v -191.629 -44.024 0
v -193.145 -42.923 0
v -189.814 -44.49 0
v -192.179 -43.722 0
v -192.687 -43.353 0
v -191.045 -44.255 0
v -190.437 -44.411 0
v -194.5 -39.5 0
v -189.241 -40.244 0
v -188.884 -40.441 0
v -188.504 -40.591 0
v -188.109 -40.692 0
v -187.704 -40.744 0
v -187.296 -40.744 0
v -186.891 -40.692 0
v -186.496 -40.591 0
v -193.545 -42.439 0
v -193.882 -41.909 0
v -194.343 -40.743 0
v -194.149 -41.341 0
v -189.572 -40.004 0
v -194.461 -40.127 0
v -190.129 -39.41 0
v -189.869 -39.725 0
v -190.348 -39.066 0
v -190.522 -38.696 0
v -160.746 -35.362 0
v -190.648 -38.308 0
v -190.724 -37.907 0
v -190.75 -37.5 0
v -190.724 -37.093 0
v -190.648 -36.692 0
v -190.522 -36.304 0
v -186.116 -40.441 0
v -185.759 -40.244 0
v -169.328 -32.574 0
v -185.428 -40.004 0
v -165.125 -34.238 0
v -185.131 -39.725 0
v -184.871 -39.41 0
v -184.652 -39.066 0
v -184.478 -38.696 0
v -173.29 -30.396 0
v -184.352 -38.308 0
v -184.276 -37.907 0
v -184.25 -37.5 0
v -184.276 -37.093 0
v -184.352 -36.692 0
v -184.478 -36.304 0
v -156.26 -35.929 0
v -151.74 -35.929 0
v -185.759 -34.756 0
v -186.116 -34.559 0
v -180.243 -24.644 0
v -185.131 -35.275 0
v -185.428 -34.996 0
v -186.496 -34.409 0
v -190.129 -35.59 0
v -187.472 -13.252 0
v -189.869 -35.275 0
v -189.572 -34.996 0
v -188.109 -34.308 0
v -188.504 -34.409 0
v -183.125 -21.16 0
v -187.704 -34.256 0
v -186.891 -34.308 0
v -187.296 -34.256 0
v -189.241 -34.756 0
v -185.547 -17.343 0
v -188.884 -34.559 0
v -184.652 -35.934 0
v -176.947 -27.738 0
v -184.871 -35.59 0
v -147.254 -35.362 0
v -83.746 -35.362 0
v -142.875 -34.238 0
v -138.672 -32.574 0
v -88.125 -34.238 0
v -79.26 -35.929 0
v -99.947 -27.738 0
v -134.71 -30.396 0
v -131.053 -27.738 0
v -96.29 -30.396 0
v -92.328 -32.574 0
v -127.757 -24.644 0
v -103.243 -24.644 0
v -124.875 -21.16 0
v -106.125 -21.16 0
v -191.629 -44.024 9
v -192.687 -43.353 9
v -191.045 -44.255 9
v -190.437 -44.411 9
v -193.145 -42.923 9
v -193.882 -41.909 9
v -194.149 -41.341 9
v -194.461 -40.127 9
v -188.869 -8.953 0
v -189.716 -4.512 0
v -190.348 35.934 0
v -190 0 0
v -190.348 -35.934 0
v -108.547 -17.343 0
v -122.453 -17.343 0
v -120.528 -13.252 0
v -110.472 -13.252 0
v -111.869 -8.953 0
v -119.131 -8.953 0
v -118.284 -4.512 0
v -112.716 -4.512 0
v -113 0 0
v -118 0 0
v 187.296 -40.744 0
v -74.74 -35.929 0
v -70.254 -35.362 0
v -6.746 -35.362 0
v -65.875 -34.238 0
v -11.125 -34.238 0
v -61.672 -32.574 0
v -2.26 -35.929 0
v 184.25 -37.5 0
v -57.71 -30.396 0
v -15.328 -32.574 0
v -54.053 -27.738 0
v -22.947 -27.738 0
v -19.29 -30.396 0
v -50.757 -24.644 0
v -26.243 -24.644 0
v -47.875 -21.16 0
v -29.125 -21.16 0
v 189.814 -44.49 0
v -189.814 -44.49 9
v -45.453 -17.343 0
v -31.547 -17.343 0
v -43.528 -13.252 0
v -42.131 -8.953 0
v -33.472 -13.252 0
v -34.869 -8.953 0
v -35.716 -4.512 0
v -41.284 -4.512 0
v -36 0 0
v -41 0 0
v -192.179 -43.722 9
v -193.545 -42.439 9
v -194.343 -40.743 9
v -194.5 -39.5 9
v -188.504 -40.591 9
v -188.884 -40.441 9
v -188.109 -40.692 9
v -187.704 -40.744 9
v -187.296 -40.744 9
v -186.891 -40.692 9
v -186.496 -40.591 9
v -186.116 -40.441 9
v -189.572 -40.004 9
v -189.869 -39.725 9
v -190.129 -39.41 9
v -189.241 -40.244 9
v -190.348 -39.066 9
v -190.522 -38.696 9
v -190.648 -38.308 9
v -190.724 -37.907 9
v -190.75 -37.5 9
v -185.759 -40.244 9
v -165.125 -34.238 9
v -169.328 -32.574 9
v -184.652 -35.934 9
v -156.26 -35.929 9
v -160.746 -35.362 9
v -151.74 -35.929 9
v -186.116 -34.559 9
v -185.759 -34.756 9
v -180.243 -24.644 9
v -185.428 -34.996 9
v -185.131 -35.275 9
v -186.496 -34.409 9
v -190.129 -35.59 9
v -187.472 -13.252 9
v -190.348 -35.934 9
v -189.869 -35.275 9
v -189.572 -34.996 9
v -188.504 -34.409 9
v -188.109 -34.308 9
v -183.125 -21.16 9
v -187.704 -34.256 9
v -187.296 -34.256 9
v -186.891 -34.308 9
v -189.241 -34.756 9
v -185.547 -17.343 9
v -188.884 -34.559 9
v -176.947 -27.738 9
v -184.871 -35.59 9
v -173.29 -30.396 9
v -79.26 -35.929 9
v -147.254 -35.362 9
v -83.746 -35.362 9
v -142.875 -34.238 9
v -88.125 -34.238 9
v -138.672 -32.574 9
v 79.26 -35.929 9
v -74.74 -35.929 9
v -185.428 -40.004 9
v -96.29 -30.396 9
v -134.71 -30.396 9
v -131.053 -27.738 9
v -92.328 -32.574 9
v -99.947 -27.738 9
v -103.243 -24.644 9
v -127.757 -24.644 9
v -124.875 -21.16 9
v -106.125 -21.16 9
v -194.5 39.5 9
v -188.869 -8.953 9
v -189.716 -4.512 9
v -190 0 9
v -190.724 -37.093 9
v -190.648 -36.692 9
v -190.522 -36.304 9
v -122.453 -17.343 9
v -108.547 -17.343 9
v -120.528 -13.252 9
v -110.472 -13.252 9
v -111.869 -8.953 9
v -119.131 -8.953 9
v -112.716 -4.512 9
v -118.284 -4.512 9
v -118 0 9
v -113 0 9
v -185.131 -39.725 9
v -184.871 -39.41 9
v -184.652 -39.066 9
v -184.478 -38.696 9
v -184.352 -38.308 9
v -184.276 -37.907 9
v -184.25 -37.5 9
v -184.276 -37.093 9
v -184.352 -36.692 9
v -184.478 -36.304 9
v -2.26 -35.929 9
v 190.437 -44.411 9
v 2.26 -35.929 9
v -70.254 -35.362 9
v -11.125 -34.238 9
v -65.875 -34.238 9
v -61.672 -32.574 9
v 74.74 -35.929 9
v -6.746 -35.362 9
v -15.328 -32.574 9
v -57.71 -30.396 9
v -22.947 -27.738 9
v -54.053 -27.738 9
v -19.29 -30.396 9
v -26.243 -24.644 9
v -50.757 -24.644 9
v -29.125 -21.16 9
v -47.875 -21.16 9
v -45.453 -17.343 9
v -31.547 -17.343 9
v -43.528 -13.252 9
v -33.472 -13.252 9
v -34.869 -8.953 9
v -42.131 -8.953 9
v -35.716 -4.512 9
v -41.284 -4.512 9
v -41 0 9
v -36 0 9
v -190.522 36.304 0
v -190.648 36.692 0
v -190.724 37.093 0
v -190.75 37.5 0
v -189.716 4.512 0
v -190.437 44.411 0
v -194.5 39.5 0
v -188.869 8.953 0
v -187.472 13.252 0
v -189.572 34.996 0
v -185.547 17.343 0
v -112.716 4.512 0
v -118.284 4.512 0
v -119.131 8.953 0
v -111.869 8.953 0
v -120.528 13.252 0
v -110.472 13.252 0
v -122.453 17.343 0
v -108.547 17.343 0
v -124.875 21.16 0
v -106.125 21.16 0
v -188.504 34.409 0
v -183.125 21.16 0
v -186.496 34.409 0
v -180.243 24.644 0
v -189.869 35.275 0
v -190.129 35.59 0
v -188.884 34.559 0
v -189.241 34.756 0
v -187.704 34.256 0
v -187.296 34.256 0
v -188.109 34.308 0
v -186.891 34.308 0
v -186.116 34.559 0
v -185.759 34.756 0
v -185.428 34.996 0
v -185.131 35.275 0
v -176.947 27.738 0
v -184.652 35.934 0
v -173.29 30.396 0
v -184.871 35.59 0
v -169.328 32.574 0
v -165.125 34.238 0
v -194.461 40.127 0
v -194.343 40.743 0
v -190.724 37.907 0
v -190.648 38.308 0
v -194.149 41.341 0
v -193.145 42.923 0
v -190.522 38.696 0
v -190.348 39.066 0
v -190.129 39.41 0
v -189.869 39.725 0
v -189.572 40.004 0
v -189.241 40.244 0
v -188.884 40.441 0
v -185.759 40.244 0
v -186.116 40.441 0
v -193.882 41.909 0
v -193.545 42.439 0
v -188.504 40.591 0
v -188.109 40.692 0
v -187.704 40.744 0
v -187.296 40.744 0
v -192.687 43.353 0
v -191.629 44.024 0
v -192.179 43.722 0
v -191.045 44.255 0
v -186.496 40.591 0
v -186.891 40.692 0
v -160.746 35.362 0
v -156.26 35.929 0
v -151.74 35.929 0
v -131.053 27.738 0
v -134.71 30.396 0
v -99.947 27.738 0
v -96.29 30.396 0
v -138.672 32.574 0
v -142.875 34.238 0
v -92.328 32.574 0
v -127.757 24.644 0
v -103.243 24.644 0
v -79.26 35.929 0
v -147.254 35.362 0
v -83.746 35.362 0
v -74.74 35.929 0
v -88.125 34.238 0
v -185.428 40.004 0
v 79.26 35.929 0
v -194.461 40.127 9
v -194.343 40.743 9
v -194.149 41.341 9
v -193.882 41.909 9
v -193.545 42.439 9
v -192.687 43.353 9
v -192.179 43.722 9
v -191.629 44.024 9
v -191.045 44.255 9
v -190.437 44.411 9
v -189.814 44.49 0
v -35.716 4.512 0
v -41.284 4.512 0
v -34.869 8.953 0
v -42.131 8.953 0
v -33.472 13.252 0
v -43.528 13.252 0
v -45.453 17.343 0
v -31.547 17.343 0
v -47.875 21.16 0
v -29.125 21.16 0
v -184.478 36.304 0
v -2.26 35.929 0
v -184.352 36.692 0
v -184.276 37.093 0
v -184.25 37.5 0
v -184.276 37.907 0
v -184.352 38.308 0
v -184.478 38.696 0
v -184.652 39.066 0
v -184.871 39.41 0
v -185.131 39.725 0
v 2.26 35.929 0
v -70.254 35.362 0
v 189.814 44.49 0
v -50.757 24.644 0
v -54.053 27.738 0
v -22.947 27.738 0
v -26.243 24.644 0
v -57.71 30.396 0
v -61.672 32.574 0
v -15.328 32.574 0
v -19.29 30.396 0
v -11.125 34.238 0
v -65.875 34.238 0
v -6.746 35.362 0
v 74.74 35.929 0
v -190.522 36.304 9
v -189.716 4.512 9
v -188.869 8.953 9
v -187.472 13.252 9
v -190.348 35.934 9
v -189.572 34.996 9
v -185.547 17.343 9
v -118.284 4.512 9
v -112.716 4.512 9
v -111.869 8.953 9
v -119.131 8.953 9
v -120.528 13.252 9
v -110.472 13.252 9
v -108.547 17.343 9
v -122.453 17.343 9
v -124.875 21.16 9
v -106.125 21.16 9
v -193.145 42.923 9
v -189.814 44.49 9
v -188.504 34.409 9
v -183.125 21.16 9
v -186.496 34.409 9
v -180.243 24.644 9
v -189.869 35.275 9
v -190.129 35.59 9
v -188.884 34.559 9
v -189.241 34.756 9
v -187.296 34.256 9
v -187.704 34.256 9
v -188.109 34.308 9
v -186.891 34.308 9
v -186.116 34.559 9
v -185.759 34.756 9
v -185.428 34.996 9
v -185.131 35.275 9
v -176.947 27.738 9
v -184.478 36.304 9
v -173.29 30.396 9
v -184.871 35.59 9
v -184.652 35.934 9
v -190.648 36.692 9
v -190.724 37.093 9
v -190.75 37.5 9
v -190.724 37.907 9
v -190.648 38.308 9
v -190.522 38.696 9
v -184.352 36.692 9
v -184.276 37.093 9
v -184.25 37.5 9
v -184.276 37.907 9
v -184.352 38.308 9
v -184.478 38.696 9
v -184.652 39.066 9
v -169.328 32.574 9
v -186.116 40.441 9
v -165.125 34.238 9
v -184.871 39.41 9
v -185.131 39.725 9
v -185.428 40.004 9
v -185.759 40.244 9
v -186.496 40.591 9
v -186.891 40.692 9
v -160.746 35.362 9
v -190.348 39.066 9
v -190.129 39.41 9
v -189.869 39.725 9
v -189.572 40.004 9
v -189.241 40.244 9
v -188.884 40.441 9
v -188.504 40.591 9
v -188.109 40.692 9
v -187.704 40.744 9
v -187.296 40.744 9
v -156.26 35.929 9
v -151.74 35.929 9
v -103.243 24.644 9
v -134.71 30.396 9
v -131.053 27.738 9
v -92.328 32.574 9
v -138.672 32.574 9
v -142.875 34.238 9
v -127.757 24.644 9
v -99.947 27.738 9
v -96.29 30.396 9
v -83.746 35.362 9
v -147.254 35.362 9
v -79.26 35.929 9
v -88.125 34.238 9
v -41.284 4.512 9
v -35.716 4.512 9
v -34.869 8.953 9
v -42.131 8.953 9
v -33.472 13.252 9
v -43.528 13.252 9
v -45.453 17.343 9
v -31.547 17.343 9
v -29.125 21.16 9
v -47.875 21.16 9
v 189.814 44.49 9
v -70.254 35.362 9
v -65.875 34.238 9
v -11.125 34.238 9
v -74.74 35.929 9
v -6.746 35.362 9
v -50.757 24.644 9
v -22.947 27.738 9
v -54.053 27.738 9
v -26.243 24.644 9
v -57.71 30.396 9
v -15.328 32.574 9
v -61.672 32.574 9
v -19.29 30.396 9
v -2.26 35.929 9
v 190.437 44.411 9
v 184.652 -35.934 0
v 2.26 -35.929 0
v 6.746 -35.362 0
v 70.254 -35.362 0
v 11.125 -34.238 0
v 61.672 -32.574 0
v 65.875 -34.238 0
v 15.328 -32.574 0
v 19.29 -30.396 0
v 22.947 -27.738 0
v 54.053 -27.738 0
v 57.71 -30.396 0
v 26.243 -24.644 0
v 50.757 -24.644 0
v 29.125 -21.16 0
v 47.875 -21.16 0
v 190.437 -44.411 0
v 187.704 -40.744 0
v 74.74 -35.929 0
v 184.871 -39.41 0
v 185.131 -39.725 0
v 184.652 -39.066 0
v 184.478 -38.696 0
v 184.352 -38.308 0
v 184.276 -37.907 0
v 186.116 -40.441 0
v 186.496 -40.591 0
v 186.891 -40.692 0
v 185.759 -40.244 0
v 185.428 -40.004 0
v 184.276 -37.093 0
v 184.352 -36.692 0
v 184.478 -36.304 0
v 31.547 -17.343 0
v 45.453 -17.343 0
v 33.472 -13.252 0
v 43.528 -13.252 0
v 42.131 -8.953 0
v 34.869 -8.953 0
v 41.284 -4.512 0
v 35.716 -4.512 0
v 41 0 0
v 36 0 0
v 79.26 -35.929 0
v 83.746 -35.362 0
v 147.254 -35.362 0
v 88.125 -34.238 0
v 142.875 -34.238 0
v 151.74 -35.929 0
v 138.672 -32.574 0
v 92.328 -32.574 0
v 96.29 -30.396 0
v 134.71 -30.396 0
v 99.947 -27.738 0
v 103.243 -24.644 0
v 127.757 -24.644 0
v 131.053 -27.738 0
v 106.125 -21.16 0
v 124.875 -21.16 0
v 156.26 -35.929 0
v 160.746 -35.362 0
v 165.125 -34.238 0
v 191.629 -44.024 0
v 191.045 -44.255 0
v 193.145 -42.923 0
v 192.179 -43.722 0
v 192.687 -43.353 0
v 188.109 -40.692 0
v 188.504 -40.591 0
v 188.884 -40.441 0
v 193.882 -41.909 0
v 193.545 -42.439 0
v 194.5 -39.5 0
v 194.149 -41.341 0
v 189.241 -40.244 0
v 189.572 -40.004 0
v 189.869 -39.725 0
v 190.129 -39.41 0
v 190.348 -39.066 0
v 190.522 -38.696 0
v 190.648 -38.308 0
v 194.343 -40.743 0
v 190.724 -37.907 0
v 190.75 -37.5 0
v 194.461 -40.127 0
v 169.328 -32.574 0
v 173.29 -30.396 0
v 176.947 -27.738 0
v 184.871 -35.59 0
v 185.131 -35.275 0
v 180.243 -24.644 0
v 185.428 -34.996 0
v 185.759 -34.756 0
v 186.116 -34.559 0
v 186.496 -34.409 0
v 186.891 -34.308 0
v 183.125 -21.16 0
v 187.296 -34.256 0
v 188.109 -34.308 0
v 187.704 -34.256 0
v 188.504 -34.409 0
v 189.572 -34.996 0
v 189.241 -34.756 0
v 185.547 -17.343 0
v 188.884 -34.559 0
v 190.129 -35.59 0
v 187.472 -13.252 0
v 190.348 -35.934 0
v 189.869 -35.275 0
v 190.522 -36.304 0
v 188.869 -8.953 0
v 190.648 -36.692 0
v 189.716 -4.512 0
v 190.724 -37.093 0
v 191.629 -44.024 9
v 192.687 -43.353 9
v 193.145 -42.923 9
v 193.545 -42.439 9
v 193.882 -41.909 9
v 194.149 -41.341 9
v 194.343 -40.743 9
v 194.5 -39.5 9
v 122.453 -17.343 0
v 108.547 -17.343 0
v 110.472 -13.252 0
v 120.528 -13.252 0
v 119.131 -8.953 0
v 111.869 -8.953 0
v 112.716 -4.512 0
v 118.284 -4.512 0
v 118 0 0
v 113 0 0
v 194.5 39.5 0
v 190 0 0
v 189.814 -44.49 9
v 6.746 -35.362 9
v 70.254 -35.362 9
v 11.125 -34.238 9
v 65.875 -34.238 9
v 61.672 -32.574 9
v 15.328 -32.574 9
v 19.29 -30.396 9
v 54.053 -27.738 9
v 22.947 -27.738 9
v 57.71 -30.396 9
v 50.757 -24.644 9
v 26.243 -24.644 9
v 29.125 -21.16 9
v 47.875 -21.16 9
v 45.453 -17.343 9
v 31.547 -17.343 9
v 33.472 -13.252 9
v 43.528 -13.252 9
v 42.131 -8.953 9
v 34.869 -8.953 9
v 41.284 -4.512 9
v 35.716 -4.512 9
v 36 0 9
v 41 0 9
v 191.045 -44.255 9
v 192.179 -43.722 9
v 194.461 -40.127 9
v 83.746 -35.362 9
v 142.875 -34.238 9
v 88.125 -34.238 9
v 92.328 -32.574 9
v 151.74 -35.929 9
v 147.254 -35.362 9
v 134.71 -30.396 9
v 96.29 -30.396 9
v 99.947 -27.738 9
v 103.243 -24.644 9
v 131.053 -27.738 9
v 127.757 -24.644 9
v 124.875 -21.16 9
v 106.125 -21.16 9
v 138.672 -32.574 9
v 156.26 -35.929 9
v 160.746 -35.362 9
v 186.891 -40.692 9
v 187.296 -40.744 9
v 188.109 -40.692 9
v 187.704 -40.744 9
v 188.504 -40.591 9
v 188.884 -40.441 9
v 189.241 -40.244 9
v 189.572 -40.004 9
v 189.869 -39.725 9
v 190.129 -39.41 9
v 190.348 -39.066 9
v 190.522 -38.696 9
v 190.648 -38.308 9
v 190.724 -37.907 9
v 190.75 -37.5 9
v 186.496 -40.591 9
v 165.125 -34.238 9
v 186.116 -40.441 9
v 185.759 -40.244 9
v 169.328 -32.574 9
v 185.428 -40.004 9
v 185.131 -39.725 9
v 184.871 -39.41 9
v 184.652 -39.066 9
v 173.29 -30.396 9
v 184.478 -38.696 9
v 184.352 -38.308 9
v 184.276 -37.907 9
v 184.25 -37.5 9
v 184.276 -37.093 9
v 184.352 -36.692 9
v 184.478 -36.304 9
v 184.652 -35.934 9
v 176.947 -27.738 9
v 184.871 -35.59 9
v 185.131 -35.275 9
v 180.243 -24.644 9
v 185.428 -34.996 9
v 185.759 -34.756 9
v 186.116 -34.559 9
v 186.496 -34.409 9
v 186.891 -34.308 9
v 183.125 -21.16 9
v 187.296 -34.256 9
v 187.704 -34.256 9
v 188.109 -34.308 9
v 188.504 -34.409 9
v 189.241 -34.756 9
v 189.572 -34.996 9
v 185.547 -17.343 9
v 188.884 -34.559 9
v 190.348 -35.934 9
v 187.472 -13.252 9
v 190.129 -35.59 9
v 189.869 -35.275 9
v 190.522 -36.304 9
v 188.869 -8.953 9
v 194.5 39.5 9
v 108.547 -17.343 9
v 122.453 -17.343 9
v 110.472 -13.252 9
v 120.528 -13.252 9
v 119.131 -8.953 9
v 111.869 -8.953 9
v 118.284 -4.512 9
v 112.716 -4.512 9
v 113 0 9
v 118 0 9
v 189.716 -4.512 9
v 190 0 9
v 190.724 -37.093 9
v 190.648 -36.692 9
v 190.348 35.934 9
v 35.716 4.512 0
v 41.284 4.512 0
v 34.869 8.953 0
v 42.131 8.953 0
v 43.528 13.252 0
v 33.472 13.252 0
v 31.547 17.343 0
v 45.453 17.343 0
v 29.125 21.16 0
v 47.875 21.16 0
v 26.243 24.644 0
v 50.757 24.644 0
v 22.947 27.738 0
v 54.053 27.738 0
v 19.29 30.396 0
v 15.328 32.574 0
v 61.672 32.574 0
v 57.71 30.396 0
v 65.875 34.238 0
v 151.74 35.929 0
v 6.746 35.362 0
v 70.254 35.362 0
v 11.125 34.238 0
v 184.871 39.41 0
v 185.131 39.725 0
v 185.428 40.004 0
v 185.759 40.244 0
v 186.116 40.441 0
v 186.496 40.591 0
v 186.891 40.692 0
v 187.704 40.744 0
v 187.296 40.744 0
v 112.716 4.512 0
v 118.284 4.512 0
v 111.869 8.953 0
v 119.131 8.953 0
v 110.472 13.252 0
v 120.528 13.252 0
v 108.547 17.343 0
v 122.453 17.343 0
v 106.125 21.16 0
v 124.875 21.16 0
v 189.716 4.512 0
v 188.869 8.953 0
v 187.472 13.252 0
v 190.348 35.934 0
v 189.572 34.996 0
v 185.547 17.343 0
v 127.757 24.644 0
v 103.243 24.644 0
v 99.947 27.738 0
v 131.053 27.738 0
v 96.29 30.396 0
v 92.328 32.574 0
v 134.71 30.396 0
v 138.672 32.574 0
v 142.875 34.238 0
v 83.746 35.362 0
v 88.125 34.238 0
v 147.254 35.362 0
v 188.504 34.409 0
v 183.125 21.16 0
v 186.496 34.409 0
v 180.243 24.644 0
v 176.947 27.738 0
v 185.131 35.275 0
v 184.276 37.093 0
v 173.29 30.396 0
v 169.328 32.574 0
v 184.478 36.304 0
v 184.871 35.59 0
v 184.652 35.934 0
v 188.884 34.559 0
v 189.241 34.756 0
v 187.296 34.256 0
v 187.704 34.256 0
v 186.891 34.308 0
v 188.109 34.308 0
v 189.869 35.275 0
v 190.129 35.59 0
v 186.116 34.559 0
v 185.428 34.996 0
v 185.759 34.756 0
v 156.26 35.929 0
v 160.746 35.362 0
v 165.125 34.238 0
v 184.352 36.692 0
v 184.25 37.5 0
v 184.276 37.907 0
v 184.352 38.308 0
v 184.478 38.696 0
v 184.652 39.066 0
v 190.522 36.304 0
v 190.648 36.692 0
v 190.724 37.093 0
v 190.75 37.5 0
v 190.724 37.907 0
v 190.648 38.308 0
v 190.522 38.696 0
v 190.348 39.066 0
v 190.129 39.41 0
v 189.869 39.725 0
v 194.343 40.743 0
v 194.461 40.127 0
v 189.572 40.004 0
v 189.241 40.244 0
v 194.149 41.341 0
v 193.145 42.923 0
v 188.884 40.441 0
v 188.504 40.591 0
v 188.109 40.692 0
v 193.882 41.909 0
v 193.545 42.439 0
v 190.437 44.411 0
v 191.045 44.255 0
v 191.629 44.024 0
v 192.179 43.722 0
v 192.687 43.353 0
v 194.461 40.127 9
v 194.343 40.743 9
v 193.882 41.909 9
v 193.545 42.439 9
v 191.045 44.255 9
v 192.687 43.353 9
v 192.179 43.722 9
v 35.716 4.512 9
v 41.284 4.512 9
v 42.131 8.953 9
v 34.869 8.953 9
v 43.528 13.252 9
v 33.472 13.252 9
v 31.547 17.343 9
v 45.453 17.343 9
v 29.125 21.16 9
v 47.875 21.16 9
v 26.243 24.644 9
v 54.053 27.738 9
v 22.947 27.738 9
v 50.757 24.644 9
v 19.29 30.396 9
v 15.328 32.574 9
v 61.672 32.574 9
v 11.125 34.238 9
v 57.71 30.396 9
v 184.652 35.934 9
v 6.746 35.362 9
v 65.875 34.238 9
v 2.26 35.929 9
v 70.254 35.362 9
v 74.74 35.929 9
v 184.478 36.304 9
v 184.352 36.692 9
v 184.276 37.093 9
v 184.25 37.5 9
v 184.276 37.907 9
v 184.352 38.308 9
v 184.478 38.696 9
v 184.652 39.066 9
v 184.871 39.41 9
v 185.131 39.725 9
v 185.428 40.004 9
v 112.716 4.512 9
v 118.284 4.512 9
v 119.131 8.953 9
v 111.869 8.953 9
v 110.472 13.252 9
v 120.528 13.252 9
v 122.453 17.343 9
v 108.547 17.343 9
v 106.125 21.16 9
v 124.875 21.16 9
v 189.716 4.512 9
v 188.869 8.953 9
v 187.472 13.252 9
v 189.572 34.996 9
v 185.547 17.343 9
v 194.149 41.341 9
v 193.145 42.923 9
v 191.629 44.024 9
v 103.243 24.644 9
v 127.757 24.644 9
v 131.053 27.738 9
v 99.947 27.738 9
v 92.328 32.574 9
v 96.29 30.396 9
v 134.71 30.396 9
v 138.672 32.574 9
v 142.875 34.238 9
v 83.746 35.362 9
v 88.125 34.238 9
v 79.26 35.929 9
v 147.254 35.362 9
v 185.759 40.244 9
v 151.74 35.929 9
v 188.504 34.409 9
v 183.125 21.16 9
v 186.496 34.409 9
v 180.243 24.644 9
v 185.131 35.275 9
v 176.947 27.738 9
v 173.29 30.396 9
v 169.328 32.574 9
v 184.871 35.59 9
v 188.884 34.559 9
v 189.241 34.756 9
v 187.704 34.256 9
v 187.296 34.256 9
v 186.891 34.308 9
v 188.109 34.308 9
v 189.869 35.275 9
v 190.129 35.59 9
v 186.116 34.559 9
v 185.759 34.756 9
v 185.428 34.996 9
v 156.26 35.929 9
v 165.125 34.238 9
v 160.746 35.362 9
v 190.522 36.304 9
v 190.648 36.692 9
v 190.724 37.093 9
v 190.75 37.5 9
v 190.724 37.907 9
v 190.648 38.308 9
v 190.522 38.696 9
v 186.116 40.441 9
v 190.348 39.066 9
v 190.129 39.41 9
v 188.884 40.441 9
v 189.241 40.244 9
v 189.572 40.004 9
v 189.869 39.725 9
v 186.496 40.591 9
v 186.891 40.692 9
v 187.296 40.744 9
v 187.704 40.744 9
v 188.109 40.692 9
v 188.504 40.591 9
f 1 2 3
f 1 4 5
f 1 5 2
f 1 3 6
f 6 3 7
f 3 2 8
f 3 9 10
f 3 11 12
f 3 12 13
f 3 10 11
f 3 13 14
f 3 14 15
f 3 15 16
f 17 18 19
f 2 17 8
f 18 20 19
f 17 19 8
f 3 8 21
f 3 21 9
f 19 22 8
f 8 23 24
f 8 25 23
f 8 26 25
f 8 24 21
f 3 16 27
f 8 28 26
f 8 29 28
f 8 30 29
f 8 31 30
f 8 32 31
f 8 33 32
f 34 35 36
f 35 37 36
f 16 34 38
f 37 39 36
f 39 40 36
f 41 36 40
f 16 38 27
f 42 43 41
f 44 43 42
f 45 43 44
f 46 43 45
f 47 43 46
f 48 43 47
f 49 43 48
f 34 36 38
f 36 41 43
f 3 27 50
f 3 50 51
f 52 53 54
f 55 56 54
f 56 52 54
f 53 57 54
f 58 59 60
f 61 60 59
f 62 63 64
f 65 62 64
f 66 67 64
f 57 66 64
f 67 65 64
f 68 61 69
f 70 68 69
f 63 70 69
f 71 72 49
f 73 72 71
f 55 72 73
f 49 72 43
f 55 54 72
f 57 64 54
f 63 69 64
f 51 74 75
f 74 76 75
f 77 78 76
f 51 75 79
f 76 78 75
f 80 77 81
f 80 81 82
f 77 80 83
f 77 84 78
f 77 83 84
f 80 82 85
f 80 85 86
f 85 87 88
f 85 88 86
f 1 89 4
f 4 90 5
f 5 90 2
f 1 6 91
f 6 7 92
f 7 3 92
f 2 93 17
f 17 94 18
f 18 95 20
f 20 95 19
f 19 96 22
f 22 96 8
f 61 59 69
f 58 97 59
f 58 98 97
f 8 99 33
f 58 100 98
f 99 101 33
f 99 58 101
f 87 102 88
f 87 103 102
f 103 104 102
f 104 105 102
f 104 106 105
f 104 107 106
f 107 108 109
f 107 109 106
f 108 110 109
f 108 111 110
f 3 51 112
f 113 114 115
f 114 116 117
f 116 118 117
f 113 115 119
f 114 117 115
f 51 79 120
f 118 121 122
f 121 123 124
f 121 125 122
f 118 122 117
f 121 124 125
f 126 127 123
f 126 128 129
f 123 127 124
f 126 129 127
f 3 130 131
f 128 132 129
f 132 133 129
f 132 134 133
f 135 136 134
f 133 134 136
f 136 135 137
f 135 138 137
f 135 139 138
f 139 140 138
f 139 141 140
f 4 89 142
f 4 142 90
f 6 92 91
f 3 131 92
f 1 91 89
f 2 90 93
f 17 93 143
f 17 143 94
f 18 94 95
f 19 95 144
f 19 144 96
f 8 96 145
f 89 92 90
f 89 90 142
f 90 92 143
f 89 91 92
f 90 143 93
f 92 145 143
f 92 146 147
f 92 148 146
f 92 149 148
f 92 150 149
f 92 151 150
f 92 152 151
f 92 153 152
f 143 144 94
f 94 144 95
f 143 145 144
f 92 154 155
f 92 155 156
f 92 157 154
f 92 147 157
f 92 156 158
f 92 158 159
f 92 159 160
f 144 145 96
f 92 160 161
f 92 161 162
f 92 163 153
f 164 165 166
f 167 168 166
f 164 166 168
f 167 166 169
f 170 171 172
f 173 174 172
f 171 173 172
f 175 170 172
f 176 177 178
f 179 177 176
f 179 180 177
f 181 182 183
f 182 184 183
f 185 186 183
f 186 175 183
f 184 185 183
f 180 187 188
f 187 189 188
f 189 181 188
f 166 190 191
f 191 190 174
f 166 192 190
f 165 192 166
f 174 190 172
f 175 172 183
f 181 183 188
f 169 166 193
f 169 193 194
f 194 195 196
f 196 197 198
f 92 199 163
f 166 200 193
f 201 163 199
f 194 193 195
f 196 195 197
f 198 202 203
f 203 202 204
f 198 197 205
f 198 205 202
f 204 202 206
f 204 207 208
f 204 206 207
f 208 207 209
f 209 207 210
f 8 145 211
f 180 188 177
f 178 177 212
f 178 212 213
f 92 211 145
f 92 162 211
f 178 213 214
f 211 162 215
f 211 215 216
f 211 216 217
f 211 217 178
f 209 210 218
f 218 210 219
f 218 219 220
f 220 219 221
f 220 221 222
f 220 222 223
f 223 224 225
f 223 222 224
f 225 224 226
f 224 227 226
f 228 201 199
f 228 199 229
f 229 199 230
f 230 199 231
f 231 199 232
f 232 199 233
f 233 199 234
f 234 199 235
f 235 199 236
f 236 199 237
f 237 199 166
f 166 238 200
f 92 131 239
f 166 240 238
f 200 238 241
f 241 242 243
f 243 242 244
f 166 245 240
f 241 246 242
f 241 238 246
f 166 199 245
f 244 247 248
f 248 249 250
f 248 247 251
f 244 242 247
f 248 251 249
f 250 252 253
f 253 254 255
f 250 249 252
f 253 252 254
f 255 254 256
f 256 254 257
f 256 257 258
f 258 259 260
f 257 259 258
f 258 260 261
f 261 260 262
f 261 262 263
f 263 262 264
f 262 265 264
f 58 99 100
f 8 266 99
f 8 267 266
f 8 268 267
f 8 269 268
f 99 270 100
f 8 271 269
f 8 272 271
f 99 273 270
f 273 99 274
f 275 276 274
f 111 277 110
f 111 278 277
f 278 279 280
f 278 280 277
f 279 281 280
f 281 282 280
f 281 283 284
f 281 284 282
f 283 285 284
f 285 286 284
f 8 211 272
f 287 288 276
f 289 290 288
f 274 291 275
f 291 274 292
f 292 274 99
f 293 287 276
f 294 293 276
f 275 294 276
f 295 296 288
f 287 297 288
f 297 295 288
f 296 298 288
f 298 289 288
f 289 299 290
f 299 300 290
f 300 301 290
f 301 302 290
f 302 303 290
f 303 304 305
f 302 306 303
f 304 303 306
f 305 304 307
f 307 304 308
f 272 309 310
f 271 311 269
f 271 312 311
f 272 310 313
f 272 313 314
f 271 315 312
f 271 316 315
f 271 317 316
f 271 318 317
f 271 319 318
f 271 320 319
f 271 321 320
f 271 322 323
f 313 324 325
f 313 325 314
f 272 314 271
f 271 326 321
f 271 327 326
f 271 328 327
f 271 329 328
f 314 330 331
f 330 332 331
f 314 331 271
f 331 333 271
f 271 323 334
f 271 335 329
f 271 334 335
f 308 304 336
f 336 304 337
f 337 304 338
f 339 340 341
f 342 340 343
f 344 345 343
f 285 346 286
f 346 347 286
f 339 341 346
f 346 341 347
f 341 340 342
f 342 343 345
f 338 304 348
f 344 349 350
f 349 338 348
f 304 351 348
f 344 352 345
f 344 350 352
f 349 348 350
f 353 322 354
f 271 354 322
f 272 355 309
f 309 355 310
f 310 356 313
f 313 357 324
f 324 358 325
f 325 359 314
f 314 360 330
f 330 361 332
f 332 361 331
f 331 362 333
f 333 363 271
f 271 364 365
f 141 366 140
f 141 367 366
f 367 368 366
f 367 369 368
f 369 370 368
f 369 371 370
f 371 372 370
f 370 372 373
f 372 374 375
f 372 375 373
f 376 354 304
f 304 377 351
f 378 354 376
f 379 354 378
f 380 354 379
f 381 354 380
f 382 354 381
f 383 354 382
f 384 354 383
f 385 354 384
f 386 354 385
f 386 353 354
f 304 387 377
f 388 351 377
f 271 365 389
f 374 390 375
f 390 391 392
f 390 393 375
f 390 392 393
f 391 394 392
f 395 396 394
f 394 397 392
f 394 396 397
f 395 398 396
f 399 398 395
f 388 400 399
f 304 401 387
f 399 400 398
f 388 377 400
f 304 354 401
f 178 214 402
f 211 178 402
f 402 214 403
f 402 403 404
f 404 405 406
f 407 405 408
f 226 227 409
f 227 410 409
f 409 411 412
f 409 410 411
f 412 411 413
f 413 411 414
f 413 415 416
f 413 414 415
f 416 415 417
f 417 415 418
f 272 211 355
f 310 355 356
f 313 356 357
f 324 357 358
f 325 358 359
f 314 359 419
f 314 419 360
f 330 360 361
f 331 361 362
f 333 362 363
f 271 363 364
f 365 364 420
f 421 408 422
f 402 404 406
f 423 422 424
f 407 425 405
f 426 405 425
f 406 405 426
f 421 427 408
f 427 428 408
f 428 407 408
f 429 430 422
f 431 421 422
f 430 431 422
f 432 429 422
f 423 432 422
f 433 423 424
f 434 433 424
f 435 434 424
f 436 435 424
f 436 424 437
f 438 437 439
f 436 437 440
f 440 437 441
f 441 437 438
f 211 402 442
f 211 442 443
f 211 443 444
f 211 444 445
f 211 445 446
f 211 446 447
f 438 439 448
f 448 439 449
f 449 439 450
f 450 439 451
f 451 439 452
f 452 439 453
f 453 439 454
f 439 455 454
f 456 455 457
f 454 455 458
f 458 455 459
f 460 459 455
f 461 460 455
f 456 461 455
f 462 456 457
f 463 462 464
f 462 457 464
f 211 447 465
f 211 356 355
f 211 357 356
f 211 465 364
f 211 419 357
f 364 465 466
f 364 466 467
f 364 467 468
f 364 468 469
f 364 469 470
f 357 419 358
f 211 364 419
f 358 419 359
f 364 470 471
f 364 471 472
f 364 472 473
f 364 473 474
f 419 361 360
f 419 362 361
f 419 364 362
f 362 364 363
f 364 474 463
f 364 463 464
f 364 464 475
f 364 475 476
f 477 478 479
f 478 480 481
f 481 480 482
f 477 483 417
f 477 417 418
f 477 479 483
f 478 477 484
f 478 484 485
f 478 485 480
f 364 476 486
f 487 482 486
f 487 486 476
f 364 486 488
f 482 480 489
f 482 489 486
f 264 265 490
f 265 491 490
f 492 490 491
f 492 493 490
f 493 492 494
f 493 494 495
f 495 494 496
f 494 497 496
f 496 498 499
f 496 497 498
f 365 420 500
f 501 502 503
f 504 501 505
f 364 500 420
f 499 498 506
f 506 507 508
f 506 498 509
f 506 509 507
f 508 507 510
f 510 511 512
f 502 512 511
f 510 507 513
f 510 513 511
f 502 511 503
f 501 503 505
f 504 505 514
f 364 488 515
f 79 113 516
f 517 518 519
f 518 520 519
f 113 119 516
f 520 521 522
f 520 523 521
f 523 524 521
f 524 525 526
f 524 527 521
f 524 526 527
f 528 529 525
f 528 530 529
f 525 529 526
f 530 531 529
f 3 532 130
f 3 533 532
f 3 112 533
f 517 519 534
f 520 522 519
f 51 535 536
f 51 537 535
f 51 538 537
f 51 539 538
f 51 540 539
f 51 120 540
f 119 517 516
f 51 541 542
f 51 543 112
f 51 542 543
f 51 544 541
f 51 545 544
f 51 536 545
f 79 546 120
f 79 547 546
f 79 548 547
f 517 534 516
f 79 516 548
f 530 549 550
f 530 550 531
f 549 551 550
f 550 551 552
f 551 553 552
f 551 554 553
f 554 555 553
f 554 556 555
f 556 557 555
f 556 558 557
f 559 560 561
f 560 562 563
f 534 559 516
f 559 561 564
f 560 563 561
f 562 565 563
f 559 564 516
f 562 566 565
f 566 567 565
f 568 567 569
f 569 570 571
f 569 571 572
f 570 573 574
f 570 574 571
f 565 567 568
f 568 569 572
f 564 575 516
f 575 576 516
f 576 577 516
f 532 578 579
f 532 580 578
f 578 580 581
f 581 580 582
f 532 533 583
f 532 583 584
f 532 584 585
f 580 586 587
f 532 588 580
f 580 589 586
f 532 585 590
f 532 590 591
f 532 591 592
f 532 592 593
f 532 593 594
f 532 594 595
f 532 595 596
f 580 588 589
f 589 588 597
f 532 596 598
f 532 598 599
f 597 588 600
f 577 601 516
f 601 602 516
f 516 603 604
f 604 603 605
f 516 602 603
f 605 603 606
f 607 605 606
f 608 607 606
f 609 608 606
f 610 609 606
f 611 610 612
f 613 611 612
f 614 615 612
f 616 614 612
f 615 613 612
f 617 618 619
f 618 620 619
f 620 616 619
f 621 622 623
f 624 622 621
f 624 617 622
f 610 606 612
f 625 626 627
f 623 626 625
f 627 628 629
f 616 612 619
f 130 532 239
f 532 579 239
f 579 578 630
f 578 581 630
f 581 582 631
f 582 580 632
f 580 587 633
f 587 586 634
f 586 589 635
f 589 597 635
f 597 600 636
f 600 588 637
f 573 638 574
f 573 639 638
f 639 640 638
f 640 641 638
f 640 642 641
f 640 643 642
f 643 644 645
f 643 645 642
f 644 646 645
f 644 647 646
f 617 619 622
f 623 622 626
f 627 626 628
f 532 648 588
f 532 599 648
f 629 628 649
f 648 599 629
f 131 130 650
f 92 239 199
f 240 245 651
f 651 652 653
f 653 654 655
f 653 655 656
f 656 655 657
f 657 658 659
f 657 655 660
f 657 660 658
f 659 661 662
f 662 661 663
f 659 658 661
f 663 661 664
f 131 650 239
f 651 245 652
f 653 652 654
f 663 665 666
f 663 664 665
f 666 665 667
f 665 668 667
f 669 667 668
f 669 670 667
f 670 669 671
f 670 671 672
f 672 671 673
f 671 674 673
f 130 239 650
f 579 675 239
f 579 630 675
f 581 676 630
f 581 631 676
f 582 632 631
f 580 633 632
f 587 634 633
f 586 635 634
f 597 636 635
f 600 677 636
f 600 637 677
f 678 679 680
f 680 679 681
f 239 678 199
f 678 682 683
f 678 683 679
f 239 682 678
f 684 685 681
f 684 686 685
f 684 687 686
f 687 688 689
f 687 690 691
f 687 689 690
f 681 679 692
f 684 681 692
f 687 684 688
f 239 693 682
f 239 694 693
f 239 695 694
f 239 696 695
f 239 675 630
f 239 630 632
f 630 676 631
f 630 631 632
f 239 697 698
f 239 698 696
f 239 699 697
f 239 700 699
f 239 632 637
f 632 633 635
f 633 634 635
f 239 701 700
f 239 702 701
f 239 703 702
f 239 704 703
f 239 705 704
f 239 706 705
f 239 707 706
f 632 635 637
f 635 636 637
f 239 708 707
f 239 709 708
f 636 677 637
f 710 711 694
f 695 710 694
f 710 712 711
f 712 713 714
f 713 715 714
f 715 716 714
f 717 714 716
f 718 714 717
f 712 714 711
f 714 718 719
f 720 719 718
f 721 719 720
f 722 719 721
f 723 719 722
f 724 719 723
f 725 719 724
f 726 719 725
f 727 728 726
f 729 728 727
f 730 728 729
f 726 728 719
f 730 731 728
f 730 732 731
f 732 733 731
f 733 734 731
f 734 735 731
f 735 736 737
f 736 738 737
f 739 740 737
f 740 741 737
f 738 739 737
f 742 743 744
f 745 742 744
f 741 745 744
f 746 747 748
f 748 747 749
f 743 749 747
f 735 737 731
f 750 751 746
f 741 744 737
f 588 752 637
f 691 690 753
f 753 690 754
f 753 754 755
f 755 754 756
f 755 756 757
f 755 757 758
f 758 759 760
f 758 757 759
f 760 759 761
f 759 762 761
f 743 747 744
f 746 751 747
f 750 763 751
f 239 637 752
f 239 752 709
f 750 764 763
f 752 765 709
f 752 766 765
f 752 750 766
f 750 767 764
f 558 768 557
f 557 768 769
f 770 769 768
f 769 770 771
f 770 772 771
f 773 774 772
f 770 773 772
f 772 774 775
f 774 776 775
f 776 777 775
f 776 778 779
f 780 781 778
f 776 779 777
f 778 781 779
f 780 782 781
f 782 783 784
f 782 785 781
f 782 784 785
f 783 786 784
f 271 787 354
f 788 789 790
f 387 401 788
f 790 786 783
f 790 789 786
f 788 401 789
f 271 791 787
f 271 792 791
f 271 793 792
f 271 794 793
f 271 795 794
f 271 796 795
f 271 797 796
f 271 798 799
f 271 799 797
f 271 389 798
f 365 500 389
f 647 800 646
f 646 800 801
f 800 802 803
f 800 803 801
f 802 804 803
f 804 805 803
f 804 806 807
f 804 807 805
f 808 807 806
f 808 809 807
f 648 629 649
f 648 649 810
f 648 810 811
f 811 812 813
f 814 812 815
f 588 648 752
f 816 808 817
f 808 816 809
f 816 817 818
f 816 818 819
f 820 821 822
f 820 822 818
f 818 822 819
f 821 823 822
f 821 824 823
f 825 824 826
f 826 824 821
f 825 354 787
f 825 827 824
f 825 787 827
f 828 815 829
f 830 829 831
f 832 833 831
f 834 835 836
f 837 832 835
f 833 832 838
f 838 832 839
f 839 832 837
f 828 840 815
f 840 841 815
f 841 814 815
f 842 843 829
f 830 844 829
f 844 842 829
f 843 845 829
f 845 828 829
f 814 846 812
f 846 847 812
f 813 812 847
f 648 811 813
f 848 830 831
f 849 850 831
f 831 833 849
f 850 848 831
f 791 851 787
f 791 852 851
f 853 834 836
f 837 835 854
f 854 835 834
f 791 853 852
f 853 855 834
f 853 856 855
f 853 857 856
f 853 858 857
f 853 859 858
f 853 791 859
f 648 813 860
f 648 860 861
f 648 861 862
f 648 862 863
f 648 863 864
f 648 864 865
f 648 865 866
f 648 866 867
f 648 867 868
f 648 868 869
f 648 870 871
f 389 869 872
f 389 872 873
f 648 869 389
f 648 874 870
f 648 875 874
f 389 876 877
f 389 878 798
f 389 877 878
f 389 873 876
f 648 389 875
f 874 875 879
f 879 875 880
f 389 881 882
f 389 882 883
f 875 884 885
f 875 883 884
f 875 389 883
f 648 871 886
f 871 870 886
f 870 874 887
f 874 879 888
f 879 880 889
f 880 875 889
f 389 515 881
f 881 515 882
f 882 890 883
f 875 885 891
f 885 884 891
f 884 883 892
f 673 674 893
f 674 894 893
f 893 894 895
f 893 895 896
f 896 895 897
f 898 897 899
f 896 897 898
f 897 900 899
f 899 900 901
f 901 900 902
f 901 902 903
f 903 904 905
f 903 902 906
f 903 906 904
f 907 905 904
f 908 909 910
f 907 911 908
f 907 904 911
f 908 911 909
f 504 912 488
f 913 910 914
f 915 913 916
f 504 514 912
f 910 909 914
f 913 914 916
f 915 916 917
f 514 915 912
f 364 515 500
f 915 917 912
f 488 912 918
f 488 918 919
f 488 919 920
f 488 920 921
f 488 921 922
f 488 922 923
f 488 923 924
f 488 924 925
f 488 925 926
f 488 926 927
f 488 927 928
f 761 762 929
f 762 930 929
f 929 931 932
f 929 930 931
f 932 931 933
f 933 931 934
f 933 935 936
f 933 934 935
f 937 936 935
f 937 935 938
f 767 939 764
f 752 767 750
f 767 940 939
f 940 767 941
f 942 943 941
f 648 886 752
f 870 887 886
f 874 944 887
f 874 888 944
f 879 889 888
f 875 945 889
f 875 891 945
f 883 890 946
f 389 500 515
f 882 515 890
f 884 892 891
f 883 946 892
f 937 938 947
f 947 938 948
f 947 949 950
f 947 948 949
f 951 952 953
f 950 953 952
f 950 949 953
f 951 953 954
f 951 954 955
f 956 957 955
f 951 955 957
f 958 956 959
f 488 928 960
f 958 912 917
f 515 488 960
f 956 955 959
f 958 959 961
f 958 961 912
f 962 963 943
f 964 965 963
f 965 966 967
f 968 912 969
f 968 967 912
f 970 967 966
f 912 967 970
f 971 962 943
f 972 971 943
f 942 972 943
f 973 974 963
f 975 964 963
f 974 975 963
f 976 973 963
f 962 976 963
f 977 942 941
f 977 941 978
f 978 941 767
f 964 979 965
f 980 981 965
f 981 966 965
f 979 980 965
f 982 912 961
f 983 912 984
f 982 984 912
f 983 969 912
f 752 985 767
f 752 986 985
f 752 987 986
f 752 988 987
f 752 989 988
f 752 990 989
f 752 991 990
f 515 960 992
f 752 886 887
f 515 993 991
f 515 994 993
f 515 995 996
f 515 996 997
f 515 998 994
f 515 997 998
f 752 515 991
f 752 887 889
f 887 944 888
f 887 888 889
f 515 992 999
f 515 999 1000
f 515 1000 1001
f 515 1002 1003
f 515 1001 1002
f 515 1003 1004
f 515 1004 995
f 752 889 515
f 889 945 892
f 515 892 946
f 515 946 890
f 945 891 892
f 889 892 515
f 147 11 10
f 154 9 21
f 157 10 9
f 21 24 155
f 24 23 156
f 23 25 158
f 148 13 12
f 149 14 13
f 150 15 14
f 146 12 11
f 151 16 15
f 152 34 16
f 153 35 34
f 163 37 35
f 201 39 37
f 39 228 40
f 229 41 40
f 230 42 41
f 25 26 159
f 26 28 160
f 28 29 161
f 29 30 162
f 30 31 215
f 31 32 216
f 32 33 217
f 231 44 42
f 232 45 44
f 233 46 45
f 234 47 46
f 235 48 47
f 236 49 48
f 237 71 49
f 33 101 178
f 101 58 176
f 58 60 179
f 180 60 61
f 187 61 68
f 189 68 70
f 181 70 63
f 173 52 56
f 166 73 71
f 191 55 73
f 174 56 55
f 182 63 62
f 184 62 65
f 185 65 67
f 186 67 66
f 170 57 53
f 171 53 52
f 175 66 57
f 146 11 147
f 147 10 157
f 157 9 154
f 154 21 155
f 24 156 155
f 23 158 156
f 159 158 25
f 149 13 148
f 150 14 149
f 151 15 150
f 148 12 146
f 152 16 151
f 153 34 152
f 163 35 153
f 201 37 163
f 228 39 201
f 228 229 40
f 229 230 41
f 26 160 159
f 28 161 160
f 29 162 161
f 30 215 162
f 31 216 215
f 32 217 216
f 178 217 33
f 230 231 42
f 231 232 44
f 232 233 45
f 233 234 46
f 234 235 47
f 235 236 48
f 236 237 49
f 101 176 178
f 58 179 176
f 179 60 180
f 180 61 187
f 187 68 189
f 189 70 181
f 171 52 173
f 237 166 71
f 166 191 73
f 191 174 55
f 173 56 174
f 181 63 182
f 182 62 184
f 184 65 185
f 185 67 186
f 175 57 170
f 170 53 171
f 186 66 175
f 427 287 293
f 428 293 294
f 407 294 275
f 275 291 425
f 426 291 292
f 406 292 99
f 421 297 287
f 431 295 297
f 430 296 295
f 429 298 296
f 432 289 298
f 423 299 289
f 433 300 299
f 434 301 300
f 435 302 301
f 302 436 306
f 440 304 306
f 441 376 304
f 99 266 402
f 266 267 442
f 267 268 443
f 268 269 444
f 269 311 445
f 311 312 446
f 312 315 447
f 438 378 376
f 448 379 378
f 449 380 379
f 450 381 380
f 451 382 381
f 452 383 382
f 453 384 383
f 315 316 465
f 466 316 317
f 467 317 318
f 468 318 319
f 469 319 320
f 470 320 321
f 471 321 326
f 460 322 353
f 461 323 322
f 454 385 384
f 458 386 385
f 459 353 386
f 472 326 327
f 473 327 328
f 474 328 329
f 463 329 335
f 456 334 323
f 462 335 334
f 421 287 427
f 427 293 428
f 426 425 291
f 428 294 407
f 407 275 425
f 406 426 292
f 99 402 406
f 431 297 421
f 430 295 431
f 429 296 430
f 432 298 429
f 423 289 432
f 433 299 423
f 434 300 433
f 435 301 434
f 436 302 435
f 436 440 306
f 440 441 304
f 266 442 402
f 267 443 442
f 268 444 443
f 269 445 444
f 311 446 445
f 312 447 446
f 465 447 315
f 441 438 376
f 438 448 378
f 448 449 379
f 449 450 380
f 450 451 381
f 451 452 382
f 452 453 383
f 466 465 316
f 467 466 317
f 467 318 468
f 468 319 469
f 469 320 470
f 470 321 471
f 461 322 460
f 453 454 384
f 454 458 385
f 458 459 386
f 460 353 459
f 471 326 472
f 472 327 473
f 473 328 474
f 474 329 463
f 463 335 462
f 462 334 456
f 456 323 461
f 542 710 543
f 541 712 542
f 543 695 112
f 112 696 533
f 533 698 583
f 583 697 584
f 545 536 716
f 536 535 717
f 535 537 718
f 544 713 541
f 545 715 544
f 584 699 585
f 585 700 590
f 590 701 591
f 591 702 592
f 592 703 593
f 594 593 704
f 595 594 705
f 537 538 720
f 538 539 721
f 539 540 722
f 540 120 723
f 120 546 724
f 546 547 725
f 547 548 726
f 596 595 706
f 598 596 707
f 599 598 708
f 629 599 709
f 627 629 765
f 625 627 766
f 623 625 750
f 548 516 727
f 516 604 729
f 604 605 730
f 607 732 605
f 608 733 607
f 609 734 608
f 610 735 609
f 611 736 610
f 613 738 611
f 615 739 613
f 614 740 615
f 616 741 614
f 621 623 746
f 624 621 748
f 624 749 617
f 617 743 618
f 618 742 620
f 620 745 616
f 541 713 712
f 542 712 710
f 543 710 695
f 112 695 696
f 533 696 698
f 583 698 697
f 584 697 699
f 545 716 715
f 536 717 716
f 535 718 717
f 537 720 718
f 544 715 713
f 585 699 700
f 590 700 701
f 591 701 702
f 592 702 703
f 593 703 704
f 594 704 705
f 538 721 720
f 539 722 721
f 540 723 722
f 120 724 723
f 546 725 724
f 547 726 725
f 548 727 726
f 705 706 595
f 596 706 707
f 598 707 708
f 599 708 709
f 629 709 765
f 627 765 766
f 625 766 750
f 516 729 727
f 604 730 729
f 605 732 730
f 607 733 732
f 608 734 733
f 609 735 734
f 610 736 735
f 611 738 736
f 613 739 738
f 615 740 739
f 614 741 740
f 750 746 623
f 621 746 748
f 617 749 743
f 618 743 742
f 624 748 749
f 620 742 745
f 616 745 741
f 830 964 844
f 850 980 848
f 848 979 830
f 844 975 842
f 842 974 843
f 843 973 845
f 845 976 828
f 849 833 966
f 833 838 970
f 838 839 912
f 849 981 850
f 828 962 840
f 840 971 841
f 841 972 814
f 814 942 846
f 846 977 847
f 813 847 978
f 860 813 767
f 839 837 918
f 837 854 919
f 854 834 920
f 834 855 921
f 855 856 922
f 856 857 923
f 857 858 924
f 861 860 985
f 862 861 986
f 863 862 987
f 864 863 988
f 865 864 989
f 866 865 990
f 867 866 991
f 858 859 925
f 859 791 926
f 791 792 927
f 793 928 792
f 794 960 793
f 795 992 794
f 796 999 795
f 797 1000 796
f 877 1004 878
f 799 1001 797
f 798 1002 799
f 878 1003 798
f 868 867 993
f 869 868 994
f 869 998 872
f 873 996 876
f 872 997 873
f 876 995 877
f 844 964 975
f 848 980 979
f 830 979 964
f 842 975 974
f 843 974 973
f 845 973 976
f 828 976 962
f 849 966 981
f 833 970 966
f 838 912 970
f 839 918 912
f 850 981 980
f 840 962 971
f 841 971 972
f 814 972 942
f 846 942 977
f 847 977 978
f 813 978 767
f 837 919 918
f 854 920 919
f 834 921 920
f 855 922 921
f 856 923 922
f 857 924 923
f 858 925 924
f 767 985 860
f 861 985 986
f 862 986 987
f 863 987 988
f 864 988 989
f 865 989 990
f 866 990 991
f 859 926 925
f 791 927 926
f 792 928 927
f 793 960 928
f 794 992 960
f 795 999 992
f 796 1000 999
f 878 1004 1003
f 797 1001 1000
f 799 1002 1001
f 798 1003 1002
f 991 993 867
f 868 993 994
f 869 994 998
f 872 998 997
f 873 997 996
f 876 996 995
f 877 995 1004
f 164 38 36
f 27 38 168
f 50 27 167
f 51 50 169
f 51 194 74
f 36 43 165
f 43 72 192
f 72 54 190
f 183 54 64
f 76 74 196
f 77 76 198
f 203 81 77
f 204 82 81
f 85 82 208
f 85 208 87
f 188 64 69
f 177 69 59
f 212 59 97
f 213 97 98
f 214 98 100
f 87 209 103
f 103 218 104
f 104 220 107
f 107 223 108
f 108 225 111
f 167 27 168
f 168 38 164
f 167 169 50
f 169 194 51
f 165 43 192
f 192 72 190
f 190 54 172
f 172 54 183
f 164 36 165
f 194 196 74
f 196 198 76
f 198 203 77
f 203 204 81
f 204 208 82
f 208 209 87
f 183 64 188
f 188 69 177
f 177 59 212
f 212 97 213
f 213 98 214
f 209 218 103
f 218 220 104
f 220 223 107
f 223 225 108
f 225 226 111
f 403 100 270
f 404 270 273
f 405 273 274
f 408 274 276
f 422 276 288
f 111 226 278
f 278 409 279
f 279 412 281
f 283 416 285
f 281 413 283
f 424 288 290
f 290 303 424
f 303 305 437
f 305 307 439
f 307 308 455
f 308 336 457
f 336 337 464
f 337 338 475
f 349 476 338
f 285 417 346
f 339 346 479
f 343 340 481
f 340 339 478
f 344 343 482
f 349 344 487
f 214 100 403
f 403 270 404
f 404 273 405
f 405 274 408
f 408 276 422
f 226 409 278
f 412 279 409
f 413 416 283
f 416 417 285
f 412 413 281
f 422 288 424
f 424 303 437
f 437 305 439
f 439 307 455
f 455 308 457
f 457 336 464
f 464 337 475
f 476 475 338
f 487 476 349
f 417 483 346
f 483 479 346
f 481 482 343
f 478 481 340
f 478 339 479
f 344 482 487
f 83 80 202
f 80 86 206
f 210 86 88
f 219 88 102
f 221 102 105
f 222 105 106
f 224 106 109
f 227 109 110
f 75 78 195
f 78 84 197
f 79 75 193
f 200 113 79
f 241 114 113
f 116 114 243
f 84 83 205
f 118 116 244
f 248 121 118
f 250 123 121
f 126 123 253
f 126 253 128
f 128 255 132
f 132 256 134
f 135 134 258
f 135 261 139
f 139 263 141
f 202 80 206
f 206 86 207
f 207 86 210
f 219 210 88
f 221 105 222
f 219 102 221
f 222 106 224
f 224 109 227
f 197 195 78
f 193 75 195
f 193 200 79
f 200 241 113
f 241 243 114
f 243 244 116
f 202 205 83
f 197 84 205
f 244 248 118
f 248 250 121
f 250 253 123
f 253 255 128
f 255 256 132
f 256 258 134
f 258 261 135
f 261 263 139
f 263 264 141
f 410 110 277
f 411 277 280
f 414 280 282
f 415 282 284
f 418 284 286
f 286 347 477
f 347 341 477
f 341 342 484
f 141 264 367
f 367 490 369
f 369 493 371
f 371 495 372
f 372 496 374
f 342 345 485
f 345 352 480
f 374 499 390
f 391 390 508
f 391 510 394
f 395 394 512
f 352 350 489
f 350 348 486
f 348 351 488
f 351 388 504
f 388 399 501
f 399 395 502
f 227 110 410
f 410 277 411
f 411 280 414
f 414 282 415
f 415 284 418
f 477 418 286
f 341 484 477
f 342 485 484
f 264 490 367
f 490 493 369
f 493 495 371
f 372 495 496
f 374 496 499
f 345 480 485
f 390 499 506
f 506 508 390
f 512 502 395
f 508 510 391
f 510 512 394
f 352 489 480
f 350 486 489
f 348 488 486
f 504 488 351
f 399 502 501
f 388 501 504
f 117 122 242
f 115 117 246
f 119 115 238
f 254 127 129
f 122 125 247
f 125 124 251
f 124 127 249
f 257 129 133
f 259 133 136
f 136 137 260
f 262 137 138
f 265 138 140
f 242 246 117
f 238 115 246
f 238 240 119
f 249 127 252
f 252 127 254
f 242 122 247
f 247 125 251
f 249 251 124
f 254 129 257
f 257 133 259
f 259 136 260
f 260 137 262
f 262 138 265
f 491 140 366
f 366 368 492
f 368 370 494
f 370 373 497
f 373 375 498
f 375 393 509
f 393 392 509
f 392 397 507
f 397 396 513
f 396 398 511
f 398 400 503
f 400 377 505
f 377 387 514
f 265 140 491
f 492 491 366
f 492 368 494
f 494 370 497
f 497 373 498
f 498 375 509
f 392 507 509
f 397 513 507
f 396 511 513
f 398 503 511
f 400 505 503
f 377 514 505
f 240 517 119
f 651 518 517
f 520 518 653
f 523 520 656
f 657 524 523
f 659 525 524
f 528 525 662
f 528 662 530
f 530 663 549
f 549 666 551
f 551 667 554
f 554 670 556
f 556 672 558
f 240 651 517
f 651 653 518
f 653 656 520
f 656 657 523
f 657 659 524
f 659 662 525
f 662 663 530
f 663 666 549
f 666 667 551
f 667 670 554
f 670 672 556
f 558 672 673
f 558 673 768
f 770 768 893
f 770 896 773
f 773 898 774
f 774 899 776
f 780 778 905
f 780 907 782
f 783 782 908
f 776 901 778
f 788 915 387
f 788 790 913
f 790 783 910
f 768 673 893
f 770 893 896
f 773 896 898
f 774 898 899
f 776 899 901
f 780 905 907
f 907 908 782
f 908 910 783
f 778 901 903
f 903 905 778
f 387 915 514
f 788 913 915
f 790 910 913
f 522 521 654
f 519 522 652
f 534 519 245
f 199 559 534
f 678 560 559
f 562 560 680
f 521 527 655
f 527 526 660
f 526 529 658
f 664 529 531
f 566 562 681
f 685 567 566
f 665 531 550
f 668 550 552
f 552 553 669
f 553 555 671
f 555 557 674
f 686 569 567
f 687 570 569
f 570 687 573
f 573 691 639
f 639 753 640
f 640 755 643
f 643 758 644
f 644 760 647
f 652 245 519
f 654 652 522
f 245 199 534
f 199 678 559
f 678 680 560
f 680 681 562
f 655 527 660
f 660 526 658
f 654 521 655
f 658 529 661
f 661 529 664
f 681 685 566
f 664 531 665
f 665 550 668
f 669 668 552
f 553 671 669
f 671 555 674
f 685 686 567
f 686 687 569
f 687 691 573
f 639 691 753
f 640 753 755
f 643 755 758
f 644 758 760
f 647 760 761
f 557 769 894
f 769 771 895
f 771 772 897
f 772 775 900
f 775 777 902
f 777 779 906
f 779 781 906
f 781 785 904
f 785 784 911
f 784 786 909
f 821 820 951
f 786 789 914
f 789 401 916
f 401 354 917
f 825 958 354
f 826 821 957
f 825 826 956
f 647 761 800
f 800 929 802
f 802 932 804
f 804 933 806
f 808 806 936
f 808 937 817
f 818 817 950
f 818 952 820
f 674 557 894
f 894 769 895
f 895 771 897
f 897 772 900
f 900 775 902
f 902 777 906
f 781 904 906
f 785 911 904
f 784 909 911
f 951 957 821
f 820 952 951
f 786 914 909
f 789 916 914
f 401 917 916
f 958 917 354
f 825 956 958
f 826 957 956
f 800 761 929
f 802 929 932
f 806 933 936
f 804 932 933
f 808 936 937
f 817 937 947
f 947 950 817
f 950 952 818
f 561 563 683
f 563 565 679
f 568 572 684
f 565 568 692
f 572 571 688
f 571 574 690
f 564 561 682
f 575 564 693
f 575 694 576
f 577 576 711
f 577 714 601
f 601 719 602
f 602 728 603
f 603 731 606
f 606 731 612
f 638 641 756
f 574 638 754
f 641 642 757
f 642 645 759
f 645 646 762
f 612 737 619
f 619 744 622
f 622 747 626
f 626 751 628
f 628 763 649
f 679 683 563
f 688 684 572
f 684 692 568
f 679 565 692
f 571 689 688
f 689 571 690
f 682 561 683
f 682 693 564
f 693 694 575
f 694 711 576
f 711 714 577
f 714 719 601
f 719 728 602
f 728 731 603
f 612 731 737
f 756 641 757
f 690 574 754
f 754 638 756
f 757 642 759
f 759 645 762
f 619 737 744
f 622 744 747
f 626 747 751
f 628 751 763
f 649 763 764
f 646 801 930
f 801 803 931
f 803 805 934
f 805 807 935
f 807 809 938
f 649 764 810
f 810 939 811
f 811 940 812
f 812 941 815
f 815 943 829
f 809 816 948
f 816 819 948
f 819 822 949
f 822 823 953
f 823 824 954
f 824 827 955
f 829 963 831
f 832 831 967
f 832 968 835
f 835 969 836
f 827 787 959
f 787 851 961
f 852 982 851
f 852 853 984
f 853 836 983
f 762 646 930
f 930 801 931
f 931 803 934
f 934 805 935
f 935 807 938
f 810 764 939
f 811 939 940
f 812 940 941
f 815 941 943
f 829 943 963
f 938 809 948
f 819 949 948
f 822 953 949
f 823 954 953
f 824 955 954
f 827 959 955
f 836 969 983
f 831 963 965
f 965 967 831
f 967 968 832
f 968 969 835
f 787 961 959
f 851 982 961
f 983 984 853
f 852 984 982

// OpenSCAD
$fn = 50;

difference() {
	union() {
		hull() {
			translate(v = [-189.5, 39.5, 0]) {
				cylinder(h = 9, r = 5);
			}
			translate(v = [189.5, 39.5, 0]) {
				cylinder(h = 9, r = 5);
			}
			translate(v = [-189.5, -39.5, 0]) {
				cylinder(h = 9, r = 5);
			}
			translate(v = [189.5, -39.5, 0]) {
				cylinder(h = 9, r = 5);
			}
		}
	}
	union() {
		translate(v = [-187.5, -37.5, -100.0]) {
			cylinder(h = 200, r = 3.25);
		}
		translate(v = [-187.5, 37.5, -100.0]) {
			cylinder(h = 200, r = 3.25);
		}
		translate(v = [187.5, -37.5, -100.0]) {
			cylinder(h = 200, r = 3.25);
		}
		translate(v = [187.5, 37.5, -100.0]) {
			cylinder(h = 200, r = 3.25);
		}
		translate(v = [-187.5, -37.5, -100.0]) {
			cylinder(h = 200, r = 1.8);
		}
		translate(v = [-187.5, 37.5, -100.0]) {
			cylinder(h = 200, r = 1.8);
		}
		translate(v = [187.5, -37.5, -100.0]) {
			cylinder(h = 200, r = 1.8);
		}
		translate(v = [187.5, 37.5, -100.0]) {
			cylinder(h = 200, r = 1.8);
		}
		translate(v = [-154.0, 0, 0.0]) {
			cylinder(h = 9, r = 36.0);
		}
		translate(v = [-77.0, 0, 0.0]) {
			cylinder(h = 9, r = 36.0);
		}
		cylinder(h = 9, r = 36.0);
		translate(v = [77.0, 0, 0.0]) {
			cylinder(h = 9, r = 36.0);
		}
		translate(v = [154.0, 0, 0.0]) {
			cylinder(h = 9, r = 36.0);
		}
	}
}
